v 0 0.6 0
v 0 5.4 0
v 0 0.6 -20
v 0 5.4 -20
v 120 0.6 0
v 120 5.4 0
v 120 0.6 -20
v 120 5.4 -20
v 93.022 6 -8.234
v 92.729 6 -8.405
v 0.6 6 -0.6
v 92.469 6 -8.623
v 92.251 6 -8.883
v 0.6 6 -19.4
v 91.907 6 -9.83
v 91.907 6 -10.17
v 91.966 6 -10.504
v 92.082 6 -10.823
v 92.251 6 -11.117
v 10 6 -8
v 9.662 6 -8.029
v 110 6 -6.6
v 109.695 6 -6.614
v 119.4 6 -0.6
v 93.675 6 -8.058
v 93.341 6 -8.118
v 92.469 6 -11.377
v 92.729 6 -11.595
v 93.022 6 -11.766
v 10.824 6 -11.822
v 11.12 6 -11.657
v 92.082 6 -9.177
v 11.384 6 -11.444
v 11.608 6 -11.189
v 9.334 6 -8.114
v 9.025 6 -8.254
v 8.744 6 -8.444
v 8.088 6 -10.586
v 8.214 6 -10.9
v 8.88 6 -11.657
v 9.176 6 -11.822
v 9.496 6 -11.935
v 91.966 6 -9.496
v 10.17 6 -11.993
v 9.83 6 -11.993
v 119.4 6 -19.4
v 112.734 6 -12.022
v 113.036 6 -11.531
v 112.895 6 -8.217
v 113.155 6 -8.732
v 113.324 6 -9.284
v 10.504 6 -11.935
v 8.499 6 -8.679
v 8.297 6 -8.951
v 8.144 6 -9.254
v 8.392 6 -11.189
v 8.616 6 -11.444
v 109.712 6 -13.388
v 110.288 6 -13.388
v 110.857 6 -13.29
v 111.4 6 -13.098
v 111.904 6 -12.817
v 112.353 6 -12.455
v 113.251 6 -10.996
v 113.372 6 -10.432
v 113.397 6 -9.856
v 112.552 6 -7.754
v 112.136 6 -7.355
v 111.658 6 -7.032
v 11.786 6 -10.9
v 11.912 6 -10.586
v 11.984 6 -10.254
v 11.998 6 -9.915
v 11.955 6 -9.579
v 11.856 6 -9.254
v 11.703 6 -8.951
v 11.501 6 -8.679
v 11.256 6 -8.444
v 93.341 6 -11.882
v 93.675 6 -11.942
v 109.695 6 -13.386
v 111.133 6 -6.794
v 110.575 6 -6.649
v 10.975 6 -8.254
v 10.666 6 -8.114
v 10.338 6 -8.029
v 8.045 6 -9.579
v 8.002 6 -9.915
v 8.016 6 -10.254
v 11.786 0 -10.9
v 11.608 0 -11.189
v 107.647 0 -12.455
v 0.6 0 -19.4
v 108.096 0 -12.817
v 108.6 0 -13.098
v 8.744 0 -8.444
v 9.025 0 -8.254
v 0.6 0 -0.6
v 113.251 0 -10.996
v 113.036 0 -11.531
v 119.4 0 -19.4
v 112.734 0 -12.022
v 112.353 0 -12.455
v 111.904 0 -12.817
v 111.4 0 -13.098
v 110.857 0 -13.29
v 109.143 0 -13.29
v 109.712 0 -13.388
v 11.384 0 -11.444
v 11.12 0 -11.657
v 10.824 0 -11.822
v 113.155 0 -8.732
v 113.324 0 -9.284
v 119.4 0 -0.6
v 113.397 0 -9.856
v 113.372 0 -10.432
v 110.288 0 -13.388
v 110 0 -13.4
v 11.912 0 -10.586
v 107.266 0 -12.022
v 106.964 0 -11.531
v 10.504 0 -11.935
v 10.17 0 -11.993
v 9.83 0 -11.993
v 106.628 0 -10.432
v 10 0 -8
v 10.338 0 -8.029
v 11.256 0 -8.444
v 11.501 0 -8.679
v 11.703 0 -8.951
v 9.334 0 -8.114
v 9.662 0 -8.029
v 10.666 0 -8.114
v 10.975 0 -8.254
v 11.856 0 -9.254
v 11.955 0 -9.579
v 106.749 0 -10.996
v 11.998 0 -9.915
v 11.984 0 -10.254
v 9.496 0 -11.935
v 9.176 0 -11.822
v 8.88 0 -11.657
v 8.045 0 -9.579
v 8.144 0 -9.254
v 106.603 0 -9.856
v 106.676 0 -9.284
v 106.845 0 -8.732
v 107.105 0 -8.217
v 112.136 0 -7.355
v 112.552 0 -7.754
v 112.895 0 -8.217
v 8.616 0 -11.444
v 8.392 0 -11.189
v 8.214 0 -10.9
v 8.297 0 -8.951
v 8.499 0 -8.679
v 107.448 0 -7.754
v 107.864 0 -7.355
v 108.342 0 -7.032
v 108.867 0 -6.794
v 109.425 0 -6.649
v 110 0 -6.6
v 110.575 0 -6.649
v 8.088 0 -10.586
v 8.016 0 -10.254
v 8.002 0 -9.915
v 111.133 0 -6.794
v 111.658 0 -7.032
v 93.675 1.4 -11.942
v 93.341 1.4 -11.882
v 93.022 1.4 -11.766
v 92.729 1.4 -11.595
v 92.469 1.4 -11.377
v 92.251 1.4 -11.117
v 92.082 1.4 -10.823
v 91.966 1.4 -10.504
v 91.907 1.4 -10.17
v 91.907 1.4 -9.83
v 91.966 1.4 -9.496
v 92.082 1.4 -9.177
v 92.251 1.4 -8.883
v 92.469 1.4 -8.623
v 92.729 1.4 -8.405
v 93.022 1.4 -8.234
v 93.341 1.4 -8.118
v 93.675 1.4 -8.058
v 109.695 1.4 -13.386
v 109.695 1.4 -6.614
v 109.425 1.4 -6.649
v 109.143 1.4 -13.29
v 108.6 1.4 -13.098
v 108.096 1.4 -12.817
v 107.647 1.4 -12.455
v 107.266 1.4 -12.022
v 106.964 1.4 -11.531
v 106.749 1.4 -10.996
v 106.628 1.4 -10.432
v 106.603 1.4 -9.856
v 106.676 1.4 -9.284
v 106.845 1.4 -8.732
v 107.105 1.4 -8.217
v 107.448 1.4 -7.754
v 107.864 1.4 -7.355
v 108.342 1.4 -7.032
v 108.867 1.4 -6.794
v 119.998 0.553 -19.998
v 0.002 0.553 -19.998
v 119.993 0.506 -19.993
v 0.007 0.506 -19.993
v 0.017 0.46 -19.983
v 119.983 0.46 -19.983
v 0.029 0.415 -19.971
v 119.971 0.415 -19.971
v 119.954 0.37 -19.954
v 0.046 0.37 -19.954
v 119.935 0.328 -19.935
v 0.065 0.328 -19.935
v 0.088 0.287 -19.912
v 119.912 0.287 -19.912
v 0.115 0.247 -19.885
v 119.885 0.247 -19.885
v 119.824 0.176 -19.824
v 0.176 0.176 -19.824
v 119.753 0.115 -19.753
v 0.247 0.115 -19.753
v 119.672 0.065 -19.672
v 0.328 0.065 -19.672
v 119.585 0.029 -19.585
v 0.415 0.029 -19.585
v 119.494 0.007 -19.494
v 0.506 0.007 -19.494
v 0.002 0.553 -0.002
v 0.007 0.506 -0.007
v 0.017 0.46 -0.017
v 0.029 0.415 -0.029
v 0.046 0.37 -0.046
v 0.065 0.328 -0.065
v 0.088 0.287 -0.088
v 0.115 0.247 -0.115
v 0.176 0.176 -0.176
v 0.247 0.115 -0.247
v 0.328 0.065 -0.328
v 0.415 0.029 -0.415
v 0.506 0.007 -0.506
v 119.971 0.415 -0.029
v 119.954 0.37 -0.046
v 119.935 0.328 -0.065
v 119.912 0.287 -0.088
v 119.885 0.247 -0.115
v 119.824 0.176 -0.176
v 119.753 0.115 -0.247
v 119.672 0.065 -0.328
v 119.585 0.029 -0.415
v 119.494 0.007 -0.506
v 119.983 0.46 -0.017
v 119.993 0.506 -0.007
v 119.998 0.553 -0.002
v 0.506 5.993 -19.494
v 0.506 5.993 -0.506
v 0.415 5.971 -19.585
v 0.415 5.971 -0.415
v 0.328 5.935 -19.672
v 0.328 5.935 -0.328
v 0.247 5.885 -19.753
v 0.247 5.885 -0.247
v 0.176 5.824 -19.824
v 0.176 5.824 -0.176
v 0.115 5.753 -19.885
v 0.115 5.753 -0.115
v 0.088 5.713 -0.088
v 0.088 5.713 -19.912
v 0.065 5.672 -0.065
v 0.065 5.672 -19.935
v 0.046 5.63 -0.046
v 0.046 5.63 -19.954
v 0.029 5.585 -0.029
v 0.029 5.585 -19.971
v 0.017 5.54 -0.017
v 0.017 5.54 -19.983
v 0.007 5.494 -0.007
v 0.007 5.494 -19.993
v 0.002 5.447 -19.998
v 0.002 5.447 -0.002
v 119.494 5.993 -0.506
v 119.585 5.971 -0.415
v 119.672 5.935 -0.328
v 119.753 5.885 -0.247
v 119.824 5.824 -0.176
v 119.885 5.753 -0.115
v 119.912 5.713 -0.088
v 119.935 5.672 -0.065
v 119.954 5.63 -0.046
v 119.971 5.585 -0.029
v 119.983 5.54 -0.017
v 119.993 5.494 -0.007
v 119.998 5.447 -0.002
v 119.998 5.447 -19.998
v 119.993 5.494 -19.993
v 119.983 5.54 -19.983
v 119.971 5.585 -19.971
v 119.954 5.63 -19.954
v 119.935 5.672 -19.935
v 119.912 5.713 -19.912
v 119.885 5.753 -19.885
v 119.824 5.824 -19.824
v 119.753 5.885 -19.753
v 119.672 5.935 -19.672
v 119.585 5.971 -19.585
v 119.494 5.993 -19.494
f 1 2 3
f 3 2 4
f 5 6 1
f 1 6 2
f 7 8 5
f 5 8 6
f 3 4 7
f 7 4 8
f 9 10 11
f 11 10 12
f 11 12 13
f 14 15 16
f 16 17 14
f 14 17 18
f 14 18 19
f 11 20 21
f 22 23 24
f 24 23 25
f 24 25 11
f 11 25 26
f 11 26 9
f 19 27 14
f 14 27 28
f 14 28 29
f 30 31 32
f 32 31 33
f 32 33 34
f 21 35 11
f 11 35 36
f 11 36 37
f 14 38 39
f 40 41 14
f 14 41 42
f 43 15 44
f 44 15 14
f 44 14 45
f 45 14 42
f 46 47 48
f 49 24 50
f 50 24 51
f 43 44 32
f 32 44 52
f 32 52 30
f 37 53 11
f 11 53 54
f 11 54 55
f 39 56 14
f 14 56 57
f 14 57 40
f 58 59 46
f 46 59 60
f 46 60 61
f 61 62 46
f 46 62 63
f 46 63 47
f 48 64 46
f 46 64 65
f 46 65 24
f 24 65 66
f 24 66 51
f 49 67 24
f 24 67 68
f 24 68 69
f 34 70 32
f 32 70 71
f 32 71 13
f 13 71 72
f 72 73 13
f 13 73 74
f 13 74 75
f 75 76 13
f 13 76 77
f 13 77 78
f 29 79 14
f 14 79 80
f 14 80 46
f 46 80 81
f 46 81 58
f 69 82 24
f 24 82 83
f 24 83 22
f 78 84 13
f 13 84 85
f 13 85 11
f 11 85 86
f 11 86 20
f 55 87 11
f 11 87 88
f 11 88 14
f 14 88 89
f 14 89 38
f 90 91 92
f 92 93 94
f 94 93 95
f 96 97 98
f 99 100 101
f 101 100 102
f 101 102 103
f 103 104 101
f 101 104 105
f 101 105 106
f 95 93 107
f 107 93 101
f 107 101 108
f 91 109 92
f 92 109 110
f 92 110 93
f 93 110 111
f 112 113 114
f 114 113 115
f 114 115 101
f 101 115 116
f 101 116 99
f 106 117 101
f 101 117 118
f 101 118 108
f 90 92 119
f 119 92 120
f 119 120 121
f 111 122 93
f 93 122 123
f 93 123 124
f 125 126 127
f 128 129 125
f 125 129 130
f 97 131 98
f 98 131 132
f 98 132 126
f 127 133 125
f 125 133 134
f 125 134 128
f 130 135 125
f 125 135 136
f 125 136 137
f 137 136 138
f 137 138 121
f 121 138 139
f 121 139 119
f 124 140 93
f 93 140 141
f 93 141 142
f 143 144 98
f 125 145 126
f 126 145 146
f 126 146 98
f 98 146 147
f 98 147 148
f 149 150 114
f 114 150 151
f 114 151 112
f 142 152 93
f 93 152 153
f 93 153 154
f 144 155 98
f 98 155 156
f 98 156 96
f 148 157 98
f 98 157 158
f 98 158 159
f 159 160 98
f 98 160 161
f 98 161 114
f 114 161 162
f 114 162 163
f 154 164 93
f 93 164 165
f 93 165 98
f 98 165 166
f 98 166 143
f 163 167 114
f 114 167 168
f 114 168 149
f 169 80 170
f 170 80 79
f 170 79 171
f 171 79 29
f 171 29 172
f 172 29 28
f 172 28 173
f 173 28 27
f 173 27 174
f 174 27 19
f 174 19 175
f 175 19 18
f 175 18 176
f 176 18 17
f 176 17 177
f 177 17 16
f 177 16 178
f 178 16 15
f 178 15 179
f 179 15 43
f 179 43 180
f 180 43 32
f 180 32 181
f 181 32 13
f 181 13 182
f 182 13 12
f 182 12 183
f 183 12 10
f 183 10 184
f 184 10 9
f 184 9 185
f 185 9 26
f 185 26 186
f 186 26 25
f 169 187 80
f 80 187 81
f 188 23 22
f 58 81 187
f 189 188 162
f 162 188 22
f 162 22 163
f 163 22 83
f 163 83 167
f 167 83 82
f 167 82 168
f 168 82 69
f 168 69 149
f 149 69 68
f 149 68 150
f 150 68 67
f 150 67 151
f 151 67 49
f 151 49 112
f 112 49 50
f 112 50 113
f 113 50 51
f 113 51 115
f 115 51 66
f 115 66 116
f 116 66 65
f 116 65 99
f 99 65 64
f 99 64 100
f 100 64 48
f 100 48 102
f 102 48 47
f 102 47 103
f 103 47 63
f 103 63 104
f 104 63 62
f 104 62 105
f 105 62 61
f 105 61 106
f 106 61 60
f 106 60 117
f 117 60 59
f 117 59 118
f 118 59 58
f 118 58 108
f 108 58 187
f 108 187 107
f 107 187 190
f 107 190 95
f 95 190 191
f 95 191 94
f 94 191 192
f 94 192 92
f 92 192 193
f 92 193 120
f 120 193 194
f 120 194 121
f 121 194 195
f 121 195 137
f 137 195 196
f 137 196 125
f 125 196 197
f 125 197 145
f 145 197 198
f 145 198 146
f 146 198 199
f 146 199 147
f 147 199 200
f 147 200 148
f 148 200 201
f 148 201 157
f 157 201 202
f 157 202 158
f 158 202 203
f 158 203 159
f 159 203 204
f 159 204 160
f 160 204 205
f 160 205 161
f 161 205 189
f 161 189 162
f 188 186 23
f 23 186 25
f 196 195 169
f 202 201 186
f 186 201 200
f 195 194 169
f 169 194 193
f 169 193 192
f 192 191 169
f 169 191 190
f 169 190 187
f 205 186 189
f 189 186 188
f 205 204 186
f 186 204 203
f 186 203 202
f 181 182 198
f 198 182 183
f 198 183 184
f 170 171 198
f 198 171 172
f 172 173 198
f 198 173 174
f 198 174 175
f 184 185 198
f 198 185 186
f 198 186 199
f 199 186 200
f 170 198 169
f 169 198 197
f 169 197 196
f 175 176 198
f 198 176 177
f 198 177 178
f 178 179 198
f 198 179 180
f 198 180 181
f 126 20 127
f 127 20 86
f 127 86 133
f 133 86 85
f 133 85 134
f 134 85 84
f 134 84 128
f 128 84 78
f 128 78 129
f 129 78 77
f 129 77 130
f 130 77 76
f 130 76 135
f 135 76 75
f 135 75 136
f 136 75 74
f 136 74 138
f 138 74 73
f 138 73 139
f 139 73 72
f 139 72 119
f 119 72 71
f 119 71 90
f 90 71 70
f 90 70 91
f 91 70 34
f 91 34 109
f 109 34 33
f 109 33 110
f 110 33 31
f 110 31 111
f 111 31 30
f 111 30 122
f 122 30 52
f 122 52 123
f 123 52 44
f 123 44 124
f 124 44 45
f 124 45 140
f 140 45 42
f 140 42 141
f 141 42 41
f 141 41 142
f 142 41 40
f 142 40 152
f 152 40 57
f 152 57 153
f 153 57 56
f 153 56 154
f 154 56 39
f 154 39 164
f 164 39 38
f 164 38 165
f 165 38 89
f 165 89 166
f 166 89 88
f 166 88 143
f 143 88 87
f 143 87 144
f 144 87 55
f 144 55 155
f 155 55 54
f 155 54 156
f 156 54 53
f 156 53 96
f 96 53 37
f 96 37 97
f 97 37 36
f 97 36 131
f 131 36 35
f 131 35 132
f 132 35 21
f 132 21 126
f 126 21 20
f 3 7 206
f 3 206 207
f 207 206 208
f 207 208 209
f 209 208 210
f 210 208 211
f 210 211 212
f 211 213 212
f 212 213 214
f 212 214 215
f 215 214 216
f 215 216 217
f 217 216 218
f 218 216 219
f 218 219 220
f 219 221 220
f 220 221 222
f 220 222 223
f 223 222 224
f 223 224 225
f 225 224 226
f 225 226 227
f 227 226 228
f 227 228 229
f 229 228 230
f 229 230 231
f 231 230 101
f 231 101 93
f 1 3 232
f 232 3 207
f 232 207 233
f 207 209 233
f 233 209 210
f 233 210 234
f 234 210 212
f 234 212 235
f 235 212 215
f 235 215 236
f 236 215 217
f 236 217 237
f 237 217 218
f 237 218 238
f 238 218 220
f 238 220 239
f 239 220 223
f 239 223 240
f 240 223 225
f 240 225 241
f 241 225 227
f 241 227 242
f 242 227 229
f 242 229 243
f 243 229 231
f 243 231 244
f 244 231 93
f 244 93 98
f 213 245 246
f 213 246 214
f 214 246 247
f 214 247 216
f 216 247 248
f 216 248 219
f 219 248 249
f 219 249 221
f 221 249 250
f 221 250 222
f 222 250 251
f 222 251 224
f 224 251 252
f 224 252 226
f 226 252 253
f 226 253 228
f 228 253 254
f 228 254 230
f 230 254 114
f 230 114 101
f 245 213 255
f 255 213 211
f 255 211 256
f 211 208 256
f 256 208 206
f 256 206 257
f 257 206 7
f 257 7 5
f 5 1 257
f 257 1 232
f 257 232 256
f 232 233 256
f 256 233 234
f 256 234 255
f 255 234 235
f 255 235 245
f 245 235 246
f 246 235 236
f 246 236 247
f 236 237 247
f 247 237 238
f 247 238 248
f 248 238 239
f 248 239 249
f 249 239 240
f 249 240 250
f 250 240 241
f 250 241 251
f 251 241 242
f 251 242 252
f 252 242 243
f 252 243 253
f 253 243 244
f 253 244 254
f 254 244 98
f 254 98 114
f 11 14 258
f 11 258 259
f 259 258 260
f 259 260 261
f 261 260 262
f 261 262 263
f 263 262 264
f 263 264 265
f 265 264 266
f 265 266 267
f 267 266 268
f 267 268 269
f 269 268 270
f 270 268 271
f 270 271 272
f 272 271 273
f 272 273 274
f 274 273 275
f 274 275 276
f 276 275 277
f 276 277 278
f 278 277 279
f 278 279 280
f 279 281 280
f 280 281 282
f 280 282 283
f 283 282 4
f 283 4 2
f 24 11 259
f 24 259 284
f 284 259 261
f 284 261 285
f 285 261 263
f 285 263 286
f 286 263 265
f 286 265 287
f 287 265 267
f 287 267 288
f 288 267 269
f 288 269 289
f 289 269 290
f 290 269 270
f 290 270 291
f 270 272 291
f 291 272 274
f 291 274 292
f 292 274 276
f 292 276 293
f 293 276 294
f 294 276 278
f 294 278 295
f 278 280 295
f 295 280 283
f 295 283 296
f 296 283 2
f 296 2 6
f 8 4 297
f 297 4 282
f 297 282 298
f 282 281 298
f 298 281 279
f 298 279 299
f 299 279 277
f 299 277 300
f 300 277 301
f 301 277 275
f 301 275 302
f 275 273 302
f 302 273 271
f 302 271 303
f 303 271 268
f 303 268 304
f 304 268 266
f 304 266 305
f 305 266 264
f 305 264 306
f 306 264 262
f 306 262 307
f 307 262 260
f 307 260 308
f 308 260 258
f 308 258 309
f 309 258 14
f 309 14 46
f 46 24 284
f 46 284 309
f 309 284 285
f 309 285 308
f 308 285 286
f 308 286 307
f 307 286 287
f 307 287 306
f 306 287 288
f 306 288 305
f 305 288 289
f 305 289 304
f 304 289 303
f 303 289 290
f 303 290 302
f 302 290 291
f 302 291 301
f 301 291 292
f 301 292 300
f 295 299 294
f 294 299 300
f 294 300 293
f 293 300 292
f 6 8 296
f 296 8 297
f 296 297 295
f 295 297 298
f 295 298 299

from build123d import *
from build123d.topology import SkipClean

# Parameters (mm, degrees)
SKETCH1_W           = 120
SKETCH1_H           = 20
BOSS_EXTRUDE1_DEPTH = 6
CUT_EXTRUDE1_DEPTH  = 4.6
SKETCH3_R           = 3.4
CUT_EXTRUDE2_DEPTH  = 4.6
SKETCH4_R           = 2
CUT_EXTRUDE3_DEPTH  = 122.803119829
FILLET1_R           = 0.6


with BuildPart() as part:
    # Sketch1 → Boss-Extrude1 (new body)
    with BuildSketch(Plane(origin=(0, 0, 0), x_dir=(1, 0, 0), z_dir=(0, 1, 0))):
        with Locations((60, 10)):
            Rectangle(SKETCH1_W, SKETCH1_H)
    extrude(amount=BOSS_EXTRUDE1_DEPTH)

    # Sketch2 → Cut-Extrude1 (cut)
    with BuildSketch(Plane(origin=(0, 6, 0), x_dir=(1, 0, 0), z_dir=(0, 1, 0))):
        with BuildLine():
            Line((93.674922601, 11.942124585), (109.694736842, 13.386268507))
            ThreePointArc((109.694736842, 13.386268507), (113.4, 10), (109.694736842, 6.613731493))
            Line((109.694736842, 6.613731493), (93.674922601, 8.057875415))
            ThreePointArc((93.674922601, 8.057875415), (91.9, 10), (93.674922601, 11.942124585))
        make_face()
    extrude(amount=-CUT_EXTRUDE1_DEPTH, mode=Mode.SUBTRACT)

    # Sketch3 → Cut-Extrude2 (cut)
    with SkipClean():  # the faces are left unmerged after this step: merging them gives an invalid solid
        with BuildSketch(Plane(origin=(0, 1.4, 0), x_dir=(1, 0, 0), z_dir=(0, 1, 0))):
            with Locations(Location((110, 10, 0), (0, 0, 264.848860425))):
                Circle(SKETCH3_R)
        extrude(amount=-CUT_EXTRUDE2_DEPTH, mode=Mode.SUBTRACT)

    # Sketch4 → Cut-Extrude3 (cut, through all)
    with SkipClean():  # the faces are left unmerged after this step: merging them gives an invalid solid
        with BuildSketch(Plane(origin=(0, 6, 0), x_dir=(1, 0, 0), z_dir=(0, 1, 0))):
            with Locations(Location((10, 10, 0), (0, 0, 270))):
                Circle(SKETCH4_R)
        extrude(amount=-CUT_EXTRUDE3_DEPTH, mode=Mode.SUBTRACT)

    # Fillet1
    fillet1_edges = [part.edges().sort_by_distance(p)[0] for p in [
        (120, 6, -10),
        (60, 6, -20),
        (0, 6, -10),
        (60, 0, -20),
        (120, 0, -10),
        (60, 0, 0),
        (0, 0, -10),
        (60, 6, 0),
    ]]
    fillet(fillet1_edges, radius=FILLET1_R)


solid = part.part
